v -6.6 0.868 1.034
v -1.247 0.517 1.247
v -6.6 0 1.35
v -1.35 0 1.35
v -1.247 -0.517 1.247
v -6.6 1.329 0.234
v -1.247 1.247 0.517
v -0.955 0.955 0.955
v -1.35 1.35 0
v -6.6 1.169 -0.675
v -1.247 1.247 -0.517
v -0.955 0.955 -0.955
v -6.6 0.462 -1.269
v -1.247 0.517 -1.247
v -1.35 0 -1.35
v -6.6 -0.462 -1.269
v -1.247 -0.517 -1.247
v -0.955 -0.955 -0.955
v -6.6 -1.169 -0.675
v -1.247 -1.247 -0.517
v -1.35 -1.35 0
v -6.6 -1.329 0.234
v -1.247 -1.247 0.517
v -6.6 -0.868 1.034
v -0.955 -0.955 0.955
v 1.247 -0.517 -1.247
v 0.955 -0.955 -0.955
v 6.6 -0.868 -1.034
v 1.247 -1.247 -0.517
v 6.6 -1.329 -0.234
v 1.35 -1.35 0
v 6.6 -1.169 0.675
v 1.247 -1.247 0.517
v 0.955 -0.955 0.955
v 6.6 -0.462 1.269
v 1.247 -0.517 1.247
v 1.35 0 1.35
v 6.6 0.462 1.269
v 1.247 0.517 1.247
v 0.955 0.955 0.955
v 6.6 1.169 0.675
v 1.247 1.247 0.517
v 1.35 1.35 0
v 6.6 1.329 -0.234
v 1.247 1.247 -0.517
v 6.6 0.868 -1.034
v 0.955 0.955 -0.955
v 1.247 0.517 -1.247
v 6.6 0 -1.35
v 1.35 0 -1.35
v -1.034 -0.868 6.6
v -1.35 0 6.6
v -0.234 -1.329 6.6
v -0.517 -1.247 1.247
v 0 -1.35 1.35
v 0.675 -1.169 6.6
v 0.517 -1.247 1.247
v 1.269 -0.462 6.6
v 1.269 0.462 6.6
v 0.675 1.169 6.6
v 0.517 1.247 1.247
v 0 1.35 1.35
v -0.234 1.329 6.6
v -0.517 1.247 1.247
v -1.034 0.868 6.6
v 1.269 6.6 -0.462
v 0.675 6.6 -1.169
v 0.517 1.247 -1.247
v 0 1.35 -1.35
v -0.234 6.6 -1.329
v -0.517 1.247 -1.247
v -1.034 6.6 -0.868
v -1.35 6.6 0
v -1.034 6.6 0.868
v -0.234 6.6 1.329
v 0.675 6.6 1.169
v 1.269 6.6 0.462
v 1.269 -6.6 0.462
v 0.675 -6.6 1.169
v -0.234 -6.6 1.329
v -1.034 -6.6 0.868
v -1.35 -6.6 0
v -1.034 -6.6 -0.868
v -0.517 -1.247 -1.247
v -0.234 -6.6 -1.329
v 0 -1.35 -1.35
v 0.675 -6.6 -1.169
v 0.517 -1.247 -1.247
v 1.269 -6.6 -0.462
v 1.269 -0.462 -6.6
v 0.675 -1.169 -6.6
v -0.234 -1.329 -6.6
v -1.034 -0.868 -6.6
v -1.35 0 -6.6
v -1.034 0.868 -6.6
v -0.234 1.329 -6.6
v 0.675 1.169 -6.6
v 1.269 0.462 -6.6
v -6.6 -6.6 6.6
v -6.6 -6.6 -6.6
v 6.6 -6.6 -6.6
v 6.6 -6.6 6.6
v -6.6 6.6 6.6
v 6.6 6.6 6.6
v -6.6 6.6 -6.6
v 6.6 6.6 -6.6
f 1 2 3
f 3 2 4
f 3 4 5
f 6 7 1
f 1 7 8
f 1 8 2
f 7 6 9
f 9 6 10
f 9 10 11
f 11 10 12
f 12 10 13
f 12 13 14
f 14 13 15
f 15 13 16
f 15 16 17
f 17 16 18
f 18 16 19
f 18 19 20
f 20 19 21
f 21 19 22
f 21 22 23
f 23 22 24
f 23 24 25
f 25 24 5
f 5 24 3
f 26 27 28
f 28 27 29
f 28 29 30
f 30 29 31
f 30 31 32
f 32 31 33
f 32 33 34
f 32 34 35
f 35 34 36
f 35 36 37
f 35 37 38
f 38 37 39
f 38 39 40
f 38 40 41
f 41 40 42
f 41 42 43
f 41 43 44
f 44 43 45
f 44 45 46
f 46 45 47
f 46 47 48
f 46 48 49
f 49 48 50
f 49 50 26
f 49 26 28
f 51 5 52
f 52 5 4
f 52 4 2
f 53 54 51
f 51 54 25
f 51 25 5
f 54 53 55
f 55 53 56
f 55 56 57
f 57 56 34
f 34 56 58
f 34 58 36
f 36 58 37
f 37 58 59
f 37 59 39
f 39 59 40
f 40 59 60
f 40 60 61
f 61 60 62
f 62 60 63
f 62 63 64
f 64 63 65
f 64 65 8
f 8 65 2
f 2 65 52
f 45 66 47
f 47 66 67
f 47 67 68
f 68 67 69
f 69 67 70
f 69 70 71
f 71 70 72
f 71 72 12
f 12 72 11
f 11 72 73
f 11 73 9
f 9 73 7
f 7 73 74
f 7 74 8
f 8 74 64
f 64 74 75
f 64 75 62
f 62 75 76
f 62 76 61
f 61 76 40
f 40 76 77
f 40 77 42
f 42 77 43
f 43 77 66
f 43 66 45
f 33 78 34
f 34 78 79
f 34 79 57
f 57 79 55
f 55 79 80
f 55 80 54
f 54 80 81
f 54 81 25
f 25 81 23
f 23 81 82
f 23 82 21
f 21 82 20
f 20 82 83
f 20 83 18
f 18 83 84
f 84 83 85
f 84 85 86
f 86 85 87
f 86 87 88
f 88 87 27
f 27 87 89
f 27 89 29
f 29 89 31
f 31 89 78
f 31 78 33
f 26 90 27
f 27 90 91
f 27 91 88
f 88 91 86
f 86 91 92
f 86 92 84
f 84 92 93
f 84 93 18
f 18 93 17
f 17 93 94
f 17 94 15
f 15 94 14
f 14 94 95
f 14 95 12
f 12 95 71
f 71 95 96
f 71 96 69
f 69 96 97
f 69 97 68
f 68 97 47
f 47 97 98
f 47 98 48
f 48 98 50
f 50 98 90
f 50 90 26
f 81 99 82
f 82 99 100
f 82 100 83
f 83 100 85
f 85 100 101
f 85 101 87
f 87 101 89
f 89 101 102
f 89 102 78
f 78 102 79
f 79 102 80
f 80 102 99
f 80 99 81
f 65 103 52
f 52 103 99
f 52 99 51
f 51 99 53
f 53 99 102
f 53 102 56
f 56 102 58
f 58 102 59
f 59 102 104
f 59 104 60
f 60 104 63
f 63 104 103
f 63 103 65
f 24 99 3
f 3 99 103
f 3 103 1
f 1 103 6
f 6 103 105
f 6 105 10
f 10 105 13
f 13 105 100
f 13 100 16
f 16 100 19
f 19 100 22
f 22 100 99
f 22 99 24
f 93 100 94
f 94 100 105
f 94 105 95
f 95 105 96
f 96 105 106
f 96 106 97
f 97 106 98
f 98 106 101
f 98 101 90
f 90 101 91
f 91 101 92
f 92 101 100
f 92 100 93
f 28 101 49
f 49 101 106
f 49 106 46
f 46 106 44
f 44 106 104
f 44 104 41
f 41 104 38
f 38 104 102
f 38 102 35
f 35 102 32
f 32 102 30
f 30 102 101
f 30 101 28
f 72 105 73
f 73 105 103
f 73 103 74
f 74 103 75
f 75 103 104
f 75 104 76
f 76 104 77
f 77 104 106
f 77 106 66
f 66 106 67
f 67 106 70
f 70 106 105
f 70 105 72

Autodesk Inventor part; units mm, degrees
ref_plane "YZ Plane" through (0, 0, 0) normal (1, 0, 0) x (0, 1, 0)
ref_plane "XZ Plane" through (0, 0, 0) normal (0, 1, 0) x (-1, 0, 0)
ref_plane "XY Plane" through (0, 0, 0) normal (0, 0, 1) x (1, 0, 0)
sketch "Sketch1" plane through (0, 0, 0) normal (0, 1, 0) x (-1, 0, 0)
  line L0 (6.6, 6.6) -> (-6.6, 6.6)
  line L1 (-6.6, 6.6) -> (-6.6, -6.6)
  line L2 (-6.6, -6.6) -> (6.6, -6.6)
  line L3 (6.6, -6.6) -> (6.6, 6.6)
  line L4 (6.6, 6.6) -> (-6.6, -6.6) construction
  line L5 (-6.6, 6.6) -> (6.6, -6.6) construction
  point P0 (0, 0)
  dimension "d0" = 13.2
extrude "Extrusion1" add sketch "Sketch1" along normal mid plane 13.2
sketch "Sketch2" plane through (0, 6.6, 0) normal (0, 1, 0) x (1, 0, 0)
  circle A0 centre (0, 0) radius 1.35
  dimension "d3" = 2.7
sketch "Sketch3" plane through (6.6, -6.6, -6.6) normal (1, 0, 0) x (0, 0, -1)
  circle A0 centre (-6.6, 6.6) radius 1.35
  dimension "d4" = 2.7
sketch "Sketch4" plane through (-6.6, 6.6, 6.6) normal (0, 0, 1) x (1, 0, 0)
  circle A0 centre (6.6, -6.6) radius 1.35
  dimension "d5" = 2.7
extrude "Extrusion2" cut sketch "Sketch4" along normal through all both and the other way through all
extrude "Extrusion3" cut sketch "Sketch2" along normal through all both and the other way through all
extrude "Extrusion4" cut sketch "Sketch3" against normal through all
equation "\"d1\" = d0"
equation "\"d4\" = d3"
equation "\"d5\" = d3"
properties part number "C-M3-M" material "ABS Plastic"
